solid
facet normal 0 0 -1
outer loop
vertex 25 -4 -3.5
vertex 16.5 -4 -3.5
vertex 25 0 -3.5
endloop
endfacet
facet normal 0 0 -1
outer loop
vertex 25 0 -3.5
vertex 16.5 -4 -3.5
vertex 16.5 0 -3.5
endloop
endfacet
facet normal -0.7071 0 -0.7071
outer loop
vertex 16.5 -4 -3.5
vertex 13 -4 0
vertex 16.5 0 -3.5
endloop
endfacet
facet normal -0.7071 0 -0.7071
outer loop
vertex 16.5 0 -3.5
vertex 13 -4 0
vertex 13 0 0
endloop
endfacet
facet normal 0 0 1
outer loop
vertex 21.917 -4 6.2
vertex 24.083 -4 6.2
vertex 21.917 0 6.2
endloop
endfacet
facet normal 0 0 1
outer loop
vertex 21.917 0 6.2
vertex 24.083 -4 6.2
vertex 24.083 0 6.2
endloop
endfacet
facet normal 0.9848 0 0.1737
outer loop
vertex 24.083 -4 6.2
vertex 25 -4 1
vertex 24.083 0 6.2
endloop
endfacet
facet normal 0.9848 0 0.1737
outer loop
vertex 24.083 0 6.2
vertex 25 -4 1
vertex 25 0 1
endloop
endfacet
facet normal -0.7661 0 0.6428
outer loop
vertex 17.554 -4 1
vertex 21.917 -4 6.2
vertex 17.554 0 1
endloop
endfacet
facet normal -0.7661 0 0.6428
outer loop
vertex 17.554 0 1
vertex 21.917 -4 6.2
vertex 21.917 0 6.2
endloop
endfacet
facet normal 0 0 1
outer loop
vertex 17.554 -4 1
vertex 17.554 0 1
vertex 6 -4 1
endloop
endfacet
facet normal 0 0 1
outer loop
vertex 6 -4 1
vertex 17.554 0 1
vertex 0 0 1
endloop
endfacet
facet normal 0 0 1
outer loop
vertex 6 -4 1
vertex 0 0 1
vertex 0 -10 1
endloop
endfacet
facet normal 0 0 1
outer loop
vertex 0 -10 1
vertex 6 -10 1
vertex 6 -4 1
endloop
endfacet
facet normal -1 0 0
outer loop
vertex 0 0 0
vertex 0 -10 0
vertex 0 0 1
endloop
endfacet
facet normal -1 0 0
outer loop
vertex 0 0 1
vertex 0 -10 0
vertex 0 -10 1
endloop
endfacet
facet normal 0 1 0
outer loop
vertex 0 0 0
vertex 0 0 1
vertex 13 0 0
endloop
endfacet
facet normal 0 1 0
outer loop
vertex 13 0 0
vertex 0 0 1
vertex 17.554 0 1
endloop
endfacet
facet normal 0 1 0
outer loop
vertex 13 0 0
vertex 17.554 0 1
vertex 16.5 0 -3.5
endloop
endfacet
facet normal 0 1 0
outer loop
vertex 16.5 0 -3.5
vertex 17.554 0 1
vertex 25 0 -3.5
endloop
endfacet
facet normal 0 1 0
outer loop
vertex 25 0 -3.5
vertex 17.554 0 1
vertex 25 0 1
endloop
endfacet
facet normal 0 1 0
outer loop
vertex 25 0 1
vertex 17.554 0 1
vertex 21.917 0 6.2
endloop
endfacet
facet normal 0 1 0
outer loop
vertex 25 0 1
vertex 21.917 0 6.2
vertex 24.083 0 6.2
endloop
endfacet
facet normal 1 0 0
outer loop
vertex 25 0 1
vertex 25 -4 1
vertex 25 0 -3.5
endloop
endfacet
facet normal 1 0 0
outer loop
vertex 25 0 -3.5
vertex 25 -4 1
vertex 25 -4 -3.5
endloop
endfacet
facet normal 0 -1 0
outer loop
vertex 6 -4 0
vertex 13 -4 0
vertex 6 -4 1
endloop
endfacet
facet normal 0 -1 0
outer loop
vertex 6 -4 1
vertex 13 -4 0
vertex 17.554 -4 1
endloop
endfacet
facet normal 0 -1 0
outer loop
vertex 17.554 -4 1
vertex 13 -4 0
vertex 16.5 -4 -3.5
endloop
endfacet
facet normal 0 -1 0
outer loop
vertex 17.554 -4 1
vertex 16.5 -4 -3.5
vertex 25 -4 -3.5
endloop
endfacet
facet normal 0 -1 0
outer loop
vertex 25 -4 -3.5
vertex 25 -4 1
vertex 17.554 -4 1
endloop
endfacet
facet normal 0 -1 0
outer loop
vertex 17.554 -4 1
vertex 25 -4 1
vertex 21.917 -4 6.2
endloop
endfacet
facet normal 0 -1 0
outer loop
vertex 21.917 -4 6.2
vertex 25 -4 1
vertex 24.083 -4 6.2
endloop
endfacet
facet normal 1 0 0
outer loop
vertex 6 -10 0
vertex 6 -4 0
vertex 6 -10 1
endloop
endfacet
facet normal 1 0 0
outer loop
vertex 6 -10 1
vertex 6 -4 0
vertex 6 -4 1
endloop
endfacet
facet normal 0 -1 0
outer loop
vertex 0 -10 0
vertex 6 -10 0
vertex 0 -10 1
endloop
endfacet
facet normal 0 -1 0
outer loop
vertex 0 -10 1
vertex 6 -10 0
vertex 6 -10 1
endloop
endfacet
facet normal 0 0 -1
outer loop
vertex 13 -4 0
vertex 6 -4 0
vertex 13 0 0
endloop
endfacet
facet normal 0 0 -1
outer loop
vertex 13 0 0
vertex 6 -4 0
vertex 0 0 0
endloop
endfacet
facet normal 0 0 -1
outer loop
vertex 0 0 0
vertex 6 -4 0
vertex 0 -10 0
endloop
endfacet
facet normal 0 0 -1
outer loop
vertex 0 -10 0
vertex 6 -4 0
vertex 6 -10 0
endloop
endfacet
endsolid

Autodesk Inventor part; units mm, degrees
ref_plane "YZ Plane" through (0, 0, 0) normal (1, 0, 0) x (0, 1, 0)
ref_plane "XZ Plane" through (0, 0, 0) normal (0, 1, 0) x (-1, 0, 0)
ref_plane "XY Plane" through (0, 0, 0) normal (0, 0, 1) x (1, 0, 0)
sketch "草圖1" plane through (0, 0, 0) normal (0, 0, 1) x (1, 0, 0)
  line L0 (0, 0) -> (25, 0)
  line L1 (25, 0) -> (25, -10)
  line L2 (25, -10) -> (0, -10)
  line L3 (0, -10) -> (0, 0)
  line L4 (25, 0) -> (7, 0)
  line L5 (7, 0) -> (7, -4)
  line L6 (7, -4) -> (25, -4)
  line L7 (25, -4) -> (25, 0)
  line L8 (26, -5) -> (6, -5)
  line L9 (6, -5) -> (6, 1)
  line L10 (6, 1) -> (26, 1)
  line L11 (26, 1) -> (26, -5)
  line L12 (7, -4) -> (6, -4)
  line L13 (6, -5) -> (6, -10)
  point P0 (25, -5)
  dimension "d0" = 25
  dimension "d1" = 10
  dimension "d2" = 18
  dimension "d3" = 4
  dimension "d4" = 1
extrude "擠出1" add sketch "草圖1" along normal blind 1 contours L5 L12 L9 L0 | L0 L1 L6 L5 | L9 L13 L2 L3 L0
sketch "草圖2" plane through (0, 0, 0) normal (0, 1, 0) x (1, 0, 0)
  line L0 (25, -1) -> (0, -1) projected
  line L1 (25, -1) -> (24.0831, -6.2)
  line L2 (24.0831, -6.2) -> (21.9169, -6.2)
  line L3 (21.9169, -6.2) -> (17.5536, -1)
  point P0 (0, 0)
  point P1 (23, -6.2)
  dimension "d7" = 5.2
  dimension "d8" = 2
  dimension "d9" = 80
  dimension "d10" = 50
extrude "擠出2" add sketch "草圖2" against normal up to surface (4 mm away)
sketch "草圖3" plane through (0, 0, 0) normal (0, 1, 0) x (1, 0, 0)
  line L0 (25, 0) -> (0, 0) projected
  line L1 (0, 0) -> (0, -1) projected
  line L2 (17.5536, -1) -> (0, -1) projected
  line L3 (17.5536, -1) -> (21.9169, -6.2) projected
  line L4 (21.9169, -6.2) -> (24.0831, -6.2) projected
  line L5 (24.0831, -6.2) -> (25, -1) projected
  line L6 (25, 0) -> (25, -1) projected
  line L7 (25, 0) -> (25, 3.5)
  line L8 (25, 3.5) -> (16.5, 3.5)
  line L9 (16.5, 3.5) -> (13, 0)
  dimension "d13" = 12
  dimension "d14" = 45
  dimension "d15" = 3.5
extrude "擠出3" add sketch "草圖3" against normal up to surface (4 mm away) contours L0 L9 L8 L7
properties part number "botton_3D 列印"
